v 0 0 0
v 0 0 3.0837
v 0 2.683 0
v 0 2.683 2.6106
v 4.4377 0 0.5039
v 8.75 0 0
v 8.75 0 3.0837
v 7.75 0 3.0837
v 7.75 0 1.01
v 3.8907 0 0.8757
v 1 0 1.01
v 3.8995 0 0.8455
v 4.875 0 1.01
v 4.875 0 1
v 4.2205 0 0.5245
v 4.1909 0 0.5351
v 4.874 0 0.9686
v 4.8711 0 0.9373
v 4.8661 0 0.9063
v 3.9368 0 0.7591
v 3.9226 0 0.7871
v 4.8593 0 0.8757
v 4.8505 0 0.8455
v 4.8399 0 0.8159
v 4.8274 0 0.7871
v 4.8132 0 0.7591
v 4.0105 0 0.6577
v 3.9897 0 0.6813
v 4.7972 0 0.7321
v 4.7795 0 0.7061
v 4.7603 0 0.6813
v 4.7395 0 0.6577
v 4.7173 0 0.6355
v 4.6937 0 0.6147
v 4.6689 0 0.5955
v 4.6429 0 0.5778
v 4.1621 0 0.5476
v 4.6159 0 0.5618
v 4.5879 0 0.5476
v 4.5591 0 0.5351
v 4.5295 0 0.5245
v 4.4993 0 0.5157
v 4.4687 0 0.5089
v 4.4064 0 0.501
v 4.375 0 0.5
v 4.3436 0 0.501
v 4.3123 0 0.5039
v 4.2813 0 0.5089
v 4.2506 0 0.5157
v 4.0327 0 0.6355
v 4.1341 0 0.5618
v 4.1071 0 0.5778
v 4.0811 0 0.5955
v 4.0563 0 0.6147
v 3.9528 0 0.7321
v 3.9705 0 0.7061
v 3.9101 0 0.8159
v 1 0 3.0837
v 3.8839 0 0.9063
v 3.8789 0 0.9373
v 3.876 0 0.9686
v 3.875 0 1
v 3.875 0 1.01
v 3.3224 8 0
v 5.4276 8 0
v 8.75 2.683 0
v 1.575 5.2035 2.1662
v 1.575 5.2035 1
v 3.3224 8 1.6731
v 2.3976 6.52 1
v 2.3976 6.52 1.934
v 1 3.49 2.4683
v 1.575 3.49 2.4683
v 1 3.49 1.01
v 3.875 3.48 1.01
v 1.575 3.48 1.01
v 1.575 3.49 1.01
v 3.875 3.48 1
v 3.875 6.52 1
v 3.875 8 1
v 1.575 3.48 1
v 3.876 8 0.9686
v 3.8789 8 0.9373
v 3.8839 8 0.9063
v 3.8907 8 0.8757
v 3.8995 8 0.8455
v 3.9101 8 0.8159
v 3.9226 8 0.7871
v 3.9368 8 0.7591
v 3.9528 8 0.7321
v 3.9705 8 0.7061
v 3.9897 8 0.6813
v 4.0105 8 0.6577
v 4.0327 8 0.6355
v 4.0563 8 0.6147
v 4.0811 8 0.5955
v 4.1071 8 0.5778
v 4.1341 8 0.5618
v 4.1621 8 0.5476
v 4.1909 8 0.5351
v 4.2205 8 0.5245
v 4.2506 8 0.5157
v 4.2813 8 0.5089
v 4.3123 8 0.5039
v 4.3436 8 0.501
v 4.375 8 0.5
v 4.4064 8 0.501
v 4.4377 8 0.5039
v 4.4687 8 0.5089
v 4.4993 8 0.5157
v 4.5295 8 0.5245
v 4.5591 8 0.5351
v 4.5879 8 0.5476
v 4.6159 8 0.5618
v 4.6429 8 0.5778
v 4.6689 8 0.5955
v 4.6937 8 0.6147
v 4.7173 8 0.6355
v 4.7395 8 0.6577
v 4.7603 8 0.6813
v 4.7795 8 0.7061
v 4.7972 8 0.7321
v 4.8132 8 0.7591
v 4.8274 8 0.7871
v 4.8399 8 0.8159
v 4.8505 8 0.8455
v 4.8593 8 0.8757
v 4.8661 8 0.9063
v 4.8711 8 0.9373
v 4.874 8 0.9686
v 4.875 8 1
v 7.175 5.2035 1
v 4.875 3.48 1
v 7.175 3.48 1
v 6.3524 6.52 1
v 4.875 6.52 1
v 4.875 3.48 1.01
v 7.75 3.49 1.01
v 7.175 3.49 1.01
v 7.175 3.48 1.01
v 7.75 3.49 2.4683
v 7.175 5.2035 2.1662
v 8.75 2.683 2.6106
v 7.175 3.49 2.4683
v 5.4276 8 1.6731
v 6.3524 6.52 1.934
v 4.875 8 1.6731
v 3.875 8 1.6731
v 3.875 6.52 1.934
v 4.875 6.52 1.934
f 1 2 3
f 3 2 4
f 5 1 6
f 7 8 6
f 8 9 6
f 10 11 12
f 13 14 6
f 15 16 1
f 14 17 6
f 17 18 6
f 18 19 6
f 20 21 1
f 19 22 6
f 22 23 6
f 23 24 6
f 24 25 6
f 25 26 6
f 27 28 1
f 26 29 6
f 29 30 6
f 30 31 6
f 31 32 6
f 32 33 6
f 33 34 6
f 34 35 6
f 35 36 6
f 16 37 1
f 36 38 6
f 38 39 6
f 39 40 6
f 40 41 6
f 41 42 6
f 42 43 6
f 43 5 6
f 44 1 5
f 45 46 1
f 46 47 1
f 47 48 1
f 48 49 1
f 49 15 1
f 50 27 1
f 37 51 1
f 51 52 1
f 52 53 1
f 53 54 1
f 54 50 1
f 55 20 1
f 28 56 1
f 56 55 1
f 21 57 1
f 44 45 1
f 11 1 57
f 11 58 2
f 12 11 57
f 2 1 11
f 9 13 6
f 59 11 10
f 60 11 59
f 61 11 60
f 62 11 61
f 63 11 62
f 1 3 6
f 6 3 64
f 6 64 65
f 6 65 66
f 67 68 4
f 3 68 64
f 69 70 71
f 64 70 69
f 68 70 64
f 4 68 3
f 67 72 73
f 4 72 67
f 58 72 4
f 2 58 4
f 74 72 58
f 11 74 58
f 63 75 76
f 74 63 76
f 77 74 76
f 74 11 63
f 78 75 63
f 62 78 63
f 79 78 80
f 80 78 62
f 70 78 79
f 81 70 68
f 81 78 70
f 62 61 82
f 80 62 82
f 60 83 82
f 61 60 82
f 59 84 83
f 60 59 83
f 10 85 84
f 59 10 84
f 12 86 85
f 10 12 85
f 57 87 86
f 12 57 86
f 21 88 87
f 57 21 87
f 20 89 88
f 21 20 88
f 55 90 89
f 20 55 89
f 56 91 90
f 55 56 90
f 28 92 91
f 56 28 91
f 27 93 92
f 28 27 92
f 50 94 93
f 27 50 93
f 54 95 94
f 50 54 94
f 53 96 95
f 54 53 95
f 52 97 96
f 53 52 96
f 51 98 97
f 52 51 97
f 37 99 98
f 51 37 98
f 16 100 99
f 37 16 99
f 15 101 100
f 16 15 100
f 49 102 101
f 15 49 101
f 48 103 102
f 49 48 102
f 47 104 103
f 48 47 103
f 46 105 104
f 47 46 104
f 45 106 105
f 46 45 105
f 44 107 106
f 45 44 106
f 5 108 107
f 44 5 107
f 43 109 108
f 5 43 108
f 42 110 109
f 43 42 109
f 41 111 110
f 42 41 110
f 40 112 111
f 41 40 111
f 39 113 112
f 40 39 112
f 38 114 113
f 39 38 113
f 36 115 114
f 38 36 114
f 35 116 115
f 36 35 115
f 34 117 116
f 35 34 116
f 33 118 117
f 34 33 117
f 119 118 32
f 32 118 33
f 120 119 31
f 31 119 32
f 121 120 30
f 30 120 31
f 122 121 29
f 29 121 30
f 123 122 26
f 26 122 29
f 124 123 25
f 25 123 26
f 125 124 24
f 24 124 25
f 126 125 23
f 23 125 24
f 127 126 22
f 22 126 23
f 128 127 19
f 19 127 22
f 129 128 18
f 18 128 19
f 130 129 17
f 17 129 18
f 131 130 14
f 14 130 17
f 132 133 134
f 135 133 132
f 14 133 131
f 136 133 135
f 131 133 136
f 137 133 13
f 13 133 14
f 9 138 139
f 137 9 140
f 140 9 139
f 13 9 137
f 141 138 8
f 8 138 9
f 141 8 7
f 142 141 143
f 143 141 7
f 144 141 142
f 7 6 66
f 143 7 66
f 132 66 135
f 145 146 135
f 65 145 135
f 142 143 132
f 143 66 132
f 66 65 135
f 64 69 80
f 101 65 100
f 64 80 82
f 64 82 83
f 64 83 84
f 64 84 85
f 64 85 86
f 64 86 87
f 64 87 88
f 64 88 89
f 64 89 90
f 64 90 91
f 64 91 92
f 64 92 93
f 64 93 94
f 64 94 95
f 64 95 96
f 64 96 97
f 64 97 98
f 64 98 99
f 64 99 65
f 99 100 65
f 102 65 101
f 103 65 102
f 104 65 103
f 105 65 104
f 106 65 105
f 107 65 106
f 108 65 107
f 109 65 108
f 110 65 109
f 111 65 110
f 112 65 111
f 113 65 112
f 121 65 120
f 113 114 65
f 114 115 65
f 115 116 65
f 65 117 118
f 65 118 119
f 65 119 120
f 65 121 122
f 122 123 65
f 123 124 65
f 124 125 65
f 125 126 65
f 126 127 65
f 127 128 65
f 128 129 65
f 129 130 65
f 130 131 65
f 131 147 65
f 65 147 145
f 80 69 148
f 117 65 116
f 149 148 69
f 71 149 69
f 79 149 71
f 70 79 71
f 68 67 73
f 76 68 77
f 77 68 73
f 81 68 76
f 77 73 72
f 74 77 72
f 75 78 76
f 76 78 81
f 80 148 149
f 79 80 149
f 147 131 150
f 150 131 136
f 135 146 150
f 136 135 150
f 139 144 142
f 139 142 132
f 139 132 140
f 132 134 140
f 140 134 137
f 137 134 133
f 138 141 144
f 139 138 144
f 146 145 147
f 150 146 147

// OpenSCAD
// units: mm
delta = 0.01; // prevent zero length walls.
connector_x = 6.75; //width
connector_z = 3.26; //height
connector_y = 3.5; //length

block_y = 4.5 + connector_y;
block_z_base = 1;
block_z = connector_z + block_z_base;
block_connector_wall_x = 1;
block_x = connector_x + 2 * block_connector_wall_x;
guide_y = 15;
guide_diameter = 1;

wiring_x = 5.6;
wiring_y = 3+4*delta;
wiring_z = connector_z+1;
wiring_x_offset = (block_x - wiring_x) / 2;

module block (){
  cube([block_x, block_y, block_z], center = false);
}

module connector (){
  cube([connector_x, connector_y, connector_z], center = false);
}

module guide_cut(){
  union(){
    rotate([90,0,0]){
      cylinder(h=guide_y, r=guide_diameter/2, center=false, $fn=100);
    }
    translate([-guide_diameter/2,-guide_y,0]){
      cube([guide_diameter, guide_y, 5], center=false);
    }
  }
}

cut_x = 6.5;
cut_y = 4;
module right_cut(){
  translate([-cut_x+block_x/2,cut_y,-delta])
  rotate([0,0,-32]){
    cube([5,15,10], center=true);
  }
}
module left_cut(){
  translate([cut_x+block_x/2,cut_y,-delta])
  rotate([0,0,32]){
    cube([5,15,10], center=true);
  }
}

module top_cut(){
  translate([-delta,-1,connector_z])
  rotate([-10,0,0]){
    cube(20,5,5);
  }
}

module wiring_space(){
  cube([wiring_x, wiring_y, wiring_z]);
}

module main(){
  difference(){
    block();
    translate([block_connector_wall_x, -delta, block_z_base + delta]){
      connector();
    }
    translate([block_x/2, block_y + delta, block_z_base]){
      guide_cut();
    }
    translate([wiring_x_offset, connector_y-2*delta, 
	       block_z_base]){
      wiring_space();
    }
    right_cut();
    left_cut();
    top_cut();
  }
}

main();
//top_cut();
